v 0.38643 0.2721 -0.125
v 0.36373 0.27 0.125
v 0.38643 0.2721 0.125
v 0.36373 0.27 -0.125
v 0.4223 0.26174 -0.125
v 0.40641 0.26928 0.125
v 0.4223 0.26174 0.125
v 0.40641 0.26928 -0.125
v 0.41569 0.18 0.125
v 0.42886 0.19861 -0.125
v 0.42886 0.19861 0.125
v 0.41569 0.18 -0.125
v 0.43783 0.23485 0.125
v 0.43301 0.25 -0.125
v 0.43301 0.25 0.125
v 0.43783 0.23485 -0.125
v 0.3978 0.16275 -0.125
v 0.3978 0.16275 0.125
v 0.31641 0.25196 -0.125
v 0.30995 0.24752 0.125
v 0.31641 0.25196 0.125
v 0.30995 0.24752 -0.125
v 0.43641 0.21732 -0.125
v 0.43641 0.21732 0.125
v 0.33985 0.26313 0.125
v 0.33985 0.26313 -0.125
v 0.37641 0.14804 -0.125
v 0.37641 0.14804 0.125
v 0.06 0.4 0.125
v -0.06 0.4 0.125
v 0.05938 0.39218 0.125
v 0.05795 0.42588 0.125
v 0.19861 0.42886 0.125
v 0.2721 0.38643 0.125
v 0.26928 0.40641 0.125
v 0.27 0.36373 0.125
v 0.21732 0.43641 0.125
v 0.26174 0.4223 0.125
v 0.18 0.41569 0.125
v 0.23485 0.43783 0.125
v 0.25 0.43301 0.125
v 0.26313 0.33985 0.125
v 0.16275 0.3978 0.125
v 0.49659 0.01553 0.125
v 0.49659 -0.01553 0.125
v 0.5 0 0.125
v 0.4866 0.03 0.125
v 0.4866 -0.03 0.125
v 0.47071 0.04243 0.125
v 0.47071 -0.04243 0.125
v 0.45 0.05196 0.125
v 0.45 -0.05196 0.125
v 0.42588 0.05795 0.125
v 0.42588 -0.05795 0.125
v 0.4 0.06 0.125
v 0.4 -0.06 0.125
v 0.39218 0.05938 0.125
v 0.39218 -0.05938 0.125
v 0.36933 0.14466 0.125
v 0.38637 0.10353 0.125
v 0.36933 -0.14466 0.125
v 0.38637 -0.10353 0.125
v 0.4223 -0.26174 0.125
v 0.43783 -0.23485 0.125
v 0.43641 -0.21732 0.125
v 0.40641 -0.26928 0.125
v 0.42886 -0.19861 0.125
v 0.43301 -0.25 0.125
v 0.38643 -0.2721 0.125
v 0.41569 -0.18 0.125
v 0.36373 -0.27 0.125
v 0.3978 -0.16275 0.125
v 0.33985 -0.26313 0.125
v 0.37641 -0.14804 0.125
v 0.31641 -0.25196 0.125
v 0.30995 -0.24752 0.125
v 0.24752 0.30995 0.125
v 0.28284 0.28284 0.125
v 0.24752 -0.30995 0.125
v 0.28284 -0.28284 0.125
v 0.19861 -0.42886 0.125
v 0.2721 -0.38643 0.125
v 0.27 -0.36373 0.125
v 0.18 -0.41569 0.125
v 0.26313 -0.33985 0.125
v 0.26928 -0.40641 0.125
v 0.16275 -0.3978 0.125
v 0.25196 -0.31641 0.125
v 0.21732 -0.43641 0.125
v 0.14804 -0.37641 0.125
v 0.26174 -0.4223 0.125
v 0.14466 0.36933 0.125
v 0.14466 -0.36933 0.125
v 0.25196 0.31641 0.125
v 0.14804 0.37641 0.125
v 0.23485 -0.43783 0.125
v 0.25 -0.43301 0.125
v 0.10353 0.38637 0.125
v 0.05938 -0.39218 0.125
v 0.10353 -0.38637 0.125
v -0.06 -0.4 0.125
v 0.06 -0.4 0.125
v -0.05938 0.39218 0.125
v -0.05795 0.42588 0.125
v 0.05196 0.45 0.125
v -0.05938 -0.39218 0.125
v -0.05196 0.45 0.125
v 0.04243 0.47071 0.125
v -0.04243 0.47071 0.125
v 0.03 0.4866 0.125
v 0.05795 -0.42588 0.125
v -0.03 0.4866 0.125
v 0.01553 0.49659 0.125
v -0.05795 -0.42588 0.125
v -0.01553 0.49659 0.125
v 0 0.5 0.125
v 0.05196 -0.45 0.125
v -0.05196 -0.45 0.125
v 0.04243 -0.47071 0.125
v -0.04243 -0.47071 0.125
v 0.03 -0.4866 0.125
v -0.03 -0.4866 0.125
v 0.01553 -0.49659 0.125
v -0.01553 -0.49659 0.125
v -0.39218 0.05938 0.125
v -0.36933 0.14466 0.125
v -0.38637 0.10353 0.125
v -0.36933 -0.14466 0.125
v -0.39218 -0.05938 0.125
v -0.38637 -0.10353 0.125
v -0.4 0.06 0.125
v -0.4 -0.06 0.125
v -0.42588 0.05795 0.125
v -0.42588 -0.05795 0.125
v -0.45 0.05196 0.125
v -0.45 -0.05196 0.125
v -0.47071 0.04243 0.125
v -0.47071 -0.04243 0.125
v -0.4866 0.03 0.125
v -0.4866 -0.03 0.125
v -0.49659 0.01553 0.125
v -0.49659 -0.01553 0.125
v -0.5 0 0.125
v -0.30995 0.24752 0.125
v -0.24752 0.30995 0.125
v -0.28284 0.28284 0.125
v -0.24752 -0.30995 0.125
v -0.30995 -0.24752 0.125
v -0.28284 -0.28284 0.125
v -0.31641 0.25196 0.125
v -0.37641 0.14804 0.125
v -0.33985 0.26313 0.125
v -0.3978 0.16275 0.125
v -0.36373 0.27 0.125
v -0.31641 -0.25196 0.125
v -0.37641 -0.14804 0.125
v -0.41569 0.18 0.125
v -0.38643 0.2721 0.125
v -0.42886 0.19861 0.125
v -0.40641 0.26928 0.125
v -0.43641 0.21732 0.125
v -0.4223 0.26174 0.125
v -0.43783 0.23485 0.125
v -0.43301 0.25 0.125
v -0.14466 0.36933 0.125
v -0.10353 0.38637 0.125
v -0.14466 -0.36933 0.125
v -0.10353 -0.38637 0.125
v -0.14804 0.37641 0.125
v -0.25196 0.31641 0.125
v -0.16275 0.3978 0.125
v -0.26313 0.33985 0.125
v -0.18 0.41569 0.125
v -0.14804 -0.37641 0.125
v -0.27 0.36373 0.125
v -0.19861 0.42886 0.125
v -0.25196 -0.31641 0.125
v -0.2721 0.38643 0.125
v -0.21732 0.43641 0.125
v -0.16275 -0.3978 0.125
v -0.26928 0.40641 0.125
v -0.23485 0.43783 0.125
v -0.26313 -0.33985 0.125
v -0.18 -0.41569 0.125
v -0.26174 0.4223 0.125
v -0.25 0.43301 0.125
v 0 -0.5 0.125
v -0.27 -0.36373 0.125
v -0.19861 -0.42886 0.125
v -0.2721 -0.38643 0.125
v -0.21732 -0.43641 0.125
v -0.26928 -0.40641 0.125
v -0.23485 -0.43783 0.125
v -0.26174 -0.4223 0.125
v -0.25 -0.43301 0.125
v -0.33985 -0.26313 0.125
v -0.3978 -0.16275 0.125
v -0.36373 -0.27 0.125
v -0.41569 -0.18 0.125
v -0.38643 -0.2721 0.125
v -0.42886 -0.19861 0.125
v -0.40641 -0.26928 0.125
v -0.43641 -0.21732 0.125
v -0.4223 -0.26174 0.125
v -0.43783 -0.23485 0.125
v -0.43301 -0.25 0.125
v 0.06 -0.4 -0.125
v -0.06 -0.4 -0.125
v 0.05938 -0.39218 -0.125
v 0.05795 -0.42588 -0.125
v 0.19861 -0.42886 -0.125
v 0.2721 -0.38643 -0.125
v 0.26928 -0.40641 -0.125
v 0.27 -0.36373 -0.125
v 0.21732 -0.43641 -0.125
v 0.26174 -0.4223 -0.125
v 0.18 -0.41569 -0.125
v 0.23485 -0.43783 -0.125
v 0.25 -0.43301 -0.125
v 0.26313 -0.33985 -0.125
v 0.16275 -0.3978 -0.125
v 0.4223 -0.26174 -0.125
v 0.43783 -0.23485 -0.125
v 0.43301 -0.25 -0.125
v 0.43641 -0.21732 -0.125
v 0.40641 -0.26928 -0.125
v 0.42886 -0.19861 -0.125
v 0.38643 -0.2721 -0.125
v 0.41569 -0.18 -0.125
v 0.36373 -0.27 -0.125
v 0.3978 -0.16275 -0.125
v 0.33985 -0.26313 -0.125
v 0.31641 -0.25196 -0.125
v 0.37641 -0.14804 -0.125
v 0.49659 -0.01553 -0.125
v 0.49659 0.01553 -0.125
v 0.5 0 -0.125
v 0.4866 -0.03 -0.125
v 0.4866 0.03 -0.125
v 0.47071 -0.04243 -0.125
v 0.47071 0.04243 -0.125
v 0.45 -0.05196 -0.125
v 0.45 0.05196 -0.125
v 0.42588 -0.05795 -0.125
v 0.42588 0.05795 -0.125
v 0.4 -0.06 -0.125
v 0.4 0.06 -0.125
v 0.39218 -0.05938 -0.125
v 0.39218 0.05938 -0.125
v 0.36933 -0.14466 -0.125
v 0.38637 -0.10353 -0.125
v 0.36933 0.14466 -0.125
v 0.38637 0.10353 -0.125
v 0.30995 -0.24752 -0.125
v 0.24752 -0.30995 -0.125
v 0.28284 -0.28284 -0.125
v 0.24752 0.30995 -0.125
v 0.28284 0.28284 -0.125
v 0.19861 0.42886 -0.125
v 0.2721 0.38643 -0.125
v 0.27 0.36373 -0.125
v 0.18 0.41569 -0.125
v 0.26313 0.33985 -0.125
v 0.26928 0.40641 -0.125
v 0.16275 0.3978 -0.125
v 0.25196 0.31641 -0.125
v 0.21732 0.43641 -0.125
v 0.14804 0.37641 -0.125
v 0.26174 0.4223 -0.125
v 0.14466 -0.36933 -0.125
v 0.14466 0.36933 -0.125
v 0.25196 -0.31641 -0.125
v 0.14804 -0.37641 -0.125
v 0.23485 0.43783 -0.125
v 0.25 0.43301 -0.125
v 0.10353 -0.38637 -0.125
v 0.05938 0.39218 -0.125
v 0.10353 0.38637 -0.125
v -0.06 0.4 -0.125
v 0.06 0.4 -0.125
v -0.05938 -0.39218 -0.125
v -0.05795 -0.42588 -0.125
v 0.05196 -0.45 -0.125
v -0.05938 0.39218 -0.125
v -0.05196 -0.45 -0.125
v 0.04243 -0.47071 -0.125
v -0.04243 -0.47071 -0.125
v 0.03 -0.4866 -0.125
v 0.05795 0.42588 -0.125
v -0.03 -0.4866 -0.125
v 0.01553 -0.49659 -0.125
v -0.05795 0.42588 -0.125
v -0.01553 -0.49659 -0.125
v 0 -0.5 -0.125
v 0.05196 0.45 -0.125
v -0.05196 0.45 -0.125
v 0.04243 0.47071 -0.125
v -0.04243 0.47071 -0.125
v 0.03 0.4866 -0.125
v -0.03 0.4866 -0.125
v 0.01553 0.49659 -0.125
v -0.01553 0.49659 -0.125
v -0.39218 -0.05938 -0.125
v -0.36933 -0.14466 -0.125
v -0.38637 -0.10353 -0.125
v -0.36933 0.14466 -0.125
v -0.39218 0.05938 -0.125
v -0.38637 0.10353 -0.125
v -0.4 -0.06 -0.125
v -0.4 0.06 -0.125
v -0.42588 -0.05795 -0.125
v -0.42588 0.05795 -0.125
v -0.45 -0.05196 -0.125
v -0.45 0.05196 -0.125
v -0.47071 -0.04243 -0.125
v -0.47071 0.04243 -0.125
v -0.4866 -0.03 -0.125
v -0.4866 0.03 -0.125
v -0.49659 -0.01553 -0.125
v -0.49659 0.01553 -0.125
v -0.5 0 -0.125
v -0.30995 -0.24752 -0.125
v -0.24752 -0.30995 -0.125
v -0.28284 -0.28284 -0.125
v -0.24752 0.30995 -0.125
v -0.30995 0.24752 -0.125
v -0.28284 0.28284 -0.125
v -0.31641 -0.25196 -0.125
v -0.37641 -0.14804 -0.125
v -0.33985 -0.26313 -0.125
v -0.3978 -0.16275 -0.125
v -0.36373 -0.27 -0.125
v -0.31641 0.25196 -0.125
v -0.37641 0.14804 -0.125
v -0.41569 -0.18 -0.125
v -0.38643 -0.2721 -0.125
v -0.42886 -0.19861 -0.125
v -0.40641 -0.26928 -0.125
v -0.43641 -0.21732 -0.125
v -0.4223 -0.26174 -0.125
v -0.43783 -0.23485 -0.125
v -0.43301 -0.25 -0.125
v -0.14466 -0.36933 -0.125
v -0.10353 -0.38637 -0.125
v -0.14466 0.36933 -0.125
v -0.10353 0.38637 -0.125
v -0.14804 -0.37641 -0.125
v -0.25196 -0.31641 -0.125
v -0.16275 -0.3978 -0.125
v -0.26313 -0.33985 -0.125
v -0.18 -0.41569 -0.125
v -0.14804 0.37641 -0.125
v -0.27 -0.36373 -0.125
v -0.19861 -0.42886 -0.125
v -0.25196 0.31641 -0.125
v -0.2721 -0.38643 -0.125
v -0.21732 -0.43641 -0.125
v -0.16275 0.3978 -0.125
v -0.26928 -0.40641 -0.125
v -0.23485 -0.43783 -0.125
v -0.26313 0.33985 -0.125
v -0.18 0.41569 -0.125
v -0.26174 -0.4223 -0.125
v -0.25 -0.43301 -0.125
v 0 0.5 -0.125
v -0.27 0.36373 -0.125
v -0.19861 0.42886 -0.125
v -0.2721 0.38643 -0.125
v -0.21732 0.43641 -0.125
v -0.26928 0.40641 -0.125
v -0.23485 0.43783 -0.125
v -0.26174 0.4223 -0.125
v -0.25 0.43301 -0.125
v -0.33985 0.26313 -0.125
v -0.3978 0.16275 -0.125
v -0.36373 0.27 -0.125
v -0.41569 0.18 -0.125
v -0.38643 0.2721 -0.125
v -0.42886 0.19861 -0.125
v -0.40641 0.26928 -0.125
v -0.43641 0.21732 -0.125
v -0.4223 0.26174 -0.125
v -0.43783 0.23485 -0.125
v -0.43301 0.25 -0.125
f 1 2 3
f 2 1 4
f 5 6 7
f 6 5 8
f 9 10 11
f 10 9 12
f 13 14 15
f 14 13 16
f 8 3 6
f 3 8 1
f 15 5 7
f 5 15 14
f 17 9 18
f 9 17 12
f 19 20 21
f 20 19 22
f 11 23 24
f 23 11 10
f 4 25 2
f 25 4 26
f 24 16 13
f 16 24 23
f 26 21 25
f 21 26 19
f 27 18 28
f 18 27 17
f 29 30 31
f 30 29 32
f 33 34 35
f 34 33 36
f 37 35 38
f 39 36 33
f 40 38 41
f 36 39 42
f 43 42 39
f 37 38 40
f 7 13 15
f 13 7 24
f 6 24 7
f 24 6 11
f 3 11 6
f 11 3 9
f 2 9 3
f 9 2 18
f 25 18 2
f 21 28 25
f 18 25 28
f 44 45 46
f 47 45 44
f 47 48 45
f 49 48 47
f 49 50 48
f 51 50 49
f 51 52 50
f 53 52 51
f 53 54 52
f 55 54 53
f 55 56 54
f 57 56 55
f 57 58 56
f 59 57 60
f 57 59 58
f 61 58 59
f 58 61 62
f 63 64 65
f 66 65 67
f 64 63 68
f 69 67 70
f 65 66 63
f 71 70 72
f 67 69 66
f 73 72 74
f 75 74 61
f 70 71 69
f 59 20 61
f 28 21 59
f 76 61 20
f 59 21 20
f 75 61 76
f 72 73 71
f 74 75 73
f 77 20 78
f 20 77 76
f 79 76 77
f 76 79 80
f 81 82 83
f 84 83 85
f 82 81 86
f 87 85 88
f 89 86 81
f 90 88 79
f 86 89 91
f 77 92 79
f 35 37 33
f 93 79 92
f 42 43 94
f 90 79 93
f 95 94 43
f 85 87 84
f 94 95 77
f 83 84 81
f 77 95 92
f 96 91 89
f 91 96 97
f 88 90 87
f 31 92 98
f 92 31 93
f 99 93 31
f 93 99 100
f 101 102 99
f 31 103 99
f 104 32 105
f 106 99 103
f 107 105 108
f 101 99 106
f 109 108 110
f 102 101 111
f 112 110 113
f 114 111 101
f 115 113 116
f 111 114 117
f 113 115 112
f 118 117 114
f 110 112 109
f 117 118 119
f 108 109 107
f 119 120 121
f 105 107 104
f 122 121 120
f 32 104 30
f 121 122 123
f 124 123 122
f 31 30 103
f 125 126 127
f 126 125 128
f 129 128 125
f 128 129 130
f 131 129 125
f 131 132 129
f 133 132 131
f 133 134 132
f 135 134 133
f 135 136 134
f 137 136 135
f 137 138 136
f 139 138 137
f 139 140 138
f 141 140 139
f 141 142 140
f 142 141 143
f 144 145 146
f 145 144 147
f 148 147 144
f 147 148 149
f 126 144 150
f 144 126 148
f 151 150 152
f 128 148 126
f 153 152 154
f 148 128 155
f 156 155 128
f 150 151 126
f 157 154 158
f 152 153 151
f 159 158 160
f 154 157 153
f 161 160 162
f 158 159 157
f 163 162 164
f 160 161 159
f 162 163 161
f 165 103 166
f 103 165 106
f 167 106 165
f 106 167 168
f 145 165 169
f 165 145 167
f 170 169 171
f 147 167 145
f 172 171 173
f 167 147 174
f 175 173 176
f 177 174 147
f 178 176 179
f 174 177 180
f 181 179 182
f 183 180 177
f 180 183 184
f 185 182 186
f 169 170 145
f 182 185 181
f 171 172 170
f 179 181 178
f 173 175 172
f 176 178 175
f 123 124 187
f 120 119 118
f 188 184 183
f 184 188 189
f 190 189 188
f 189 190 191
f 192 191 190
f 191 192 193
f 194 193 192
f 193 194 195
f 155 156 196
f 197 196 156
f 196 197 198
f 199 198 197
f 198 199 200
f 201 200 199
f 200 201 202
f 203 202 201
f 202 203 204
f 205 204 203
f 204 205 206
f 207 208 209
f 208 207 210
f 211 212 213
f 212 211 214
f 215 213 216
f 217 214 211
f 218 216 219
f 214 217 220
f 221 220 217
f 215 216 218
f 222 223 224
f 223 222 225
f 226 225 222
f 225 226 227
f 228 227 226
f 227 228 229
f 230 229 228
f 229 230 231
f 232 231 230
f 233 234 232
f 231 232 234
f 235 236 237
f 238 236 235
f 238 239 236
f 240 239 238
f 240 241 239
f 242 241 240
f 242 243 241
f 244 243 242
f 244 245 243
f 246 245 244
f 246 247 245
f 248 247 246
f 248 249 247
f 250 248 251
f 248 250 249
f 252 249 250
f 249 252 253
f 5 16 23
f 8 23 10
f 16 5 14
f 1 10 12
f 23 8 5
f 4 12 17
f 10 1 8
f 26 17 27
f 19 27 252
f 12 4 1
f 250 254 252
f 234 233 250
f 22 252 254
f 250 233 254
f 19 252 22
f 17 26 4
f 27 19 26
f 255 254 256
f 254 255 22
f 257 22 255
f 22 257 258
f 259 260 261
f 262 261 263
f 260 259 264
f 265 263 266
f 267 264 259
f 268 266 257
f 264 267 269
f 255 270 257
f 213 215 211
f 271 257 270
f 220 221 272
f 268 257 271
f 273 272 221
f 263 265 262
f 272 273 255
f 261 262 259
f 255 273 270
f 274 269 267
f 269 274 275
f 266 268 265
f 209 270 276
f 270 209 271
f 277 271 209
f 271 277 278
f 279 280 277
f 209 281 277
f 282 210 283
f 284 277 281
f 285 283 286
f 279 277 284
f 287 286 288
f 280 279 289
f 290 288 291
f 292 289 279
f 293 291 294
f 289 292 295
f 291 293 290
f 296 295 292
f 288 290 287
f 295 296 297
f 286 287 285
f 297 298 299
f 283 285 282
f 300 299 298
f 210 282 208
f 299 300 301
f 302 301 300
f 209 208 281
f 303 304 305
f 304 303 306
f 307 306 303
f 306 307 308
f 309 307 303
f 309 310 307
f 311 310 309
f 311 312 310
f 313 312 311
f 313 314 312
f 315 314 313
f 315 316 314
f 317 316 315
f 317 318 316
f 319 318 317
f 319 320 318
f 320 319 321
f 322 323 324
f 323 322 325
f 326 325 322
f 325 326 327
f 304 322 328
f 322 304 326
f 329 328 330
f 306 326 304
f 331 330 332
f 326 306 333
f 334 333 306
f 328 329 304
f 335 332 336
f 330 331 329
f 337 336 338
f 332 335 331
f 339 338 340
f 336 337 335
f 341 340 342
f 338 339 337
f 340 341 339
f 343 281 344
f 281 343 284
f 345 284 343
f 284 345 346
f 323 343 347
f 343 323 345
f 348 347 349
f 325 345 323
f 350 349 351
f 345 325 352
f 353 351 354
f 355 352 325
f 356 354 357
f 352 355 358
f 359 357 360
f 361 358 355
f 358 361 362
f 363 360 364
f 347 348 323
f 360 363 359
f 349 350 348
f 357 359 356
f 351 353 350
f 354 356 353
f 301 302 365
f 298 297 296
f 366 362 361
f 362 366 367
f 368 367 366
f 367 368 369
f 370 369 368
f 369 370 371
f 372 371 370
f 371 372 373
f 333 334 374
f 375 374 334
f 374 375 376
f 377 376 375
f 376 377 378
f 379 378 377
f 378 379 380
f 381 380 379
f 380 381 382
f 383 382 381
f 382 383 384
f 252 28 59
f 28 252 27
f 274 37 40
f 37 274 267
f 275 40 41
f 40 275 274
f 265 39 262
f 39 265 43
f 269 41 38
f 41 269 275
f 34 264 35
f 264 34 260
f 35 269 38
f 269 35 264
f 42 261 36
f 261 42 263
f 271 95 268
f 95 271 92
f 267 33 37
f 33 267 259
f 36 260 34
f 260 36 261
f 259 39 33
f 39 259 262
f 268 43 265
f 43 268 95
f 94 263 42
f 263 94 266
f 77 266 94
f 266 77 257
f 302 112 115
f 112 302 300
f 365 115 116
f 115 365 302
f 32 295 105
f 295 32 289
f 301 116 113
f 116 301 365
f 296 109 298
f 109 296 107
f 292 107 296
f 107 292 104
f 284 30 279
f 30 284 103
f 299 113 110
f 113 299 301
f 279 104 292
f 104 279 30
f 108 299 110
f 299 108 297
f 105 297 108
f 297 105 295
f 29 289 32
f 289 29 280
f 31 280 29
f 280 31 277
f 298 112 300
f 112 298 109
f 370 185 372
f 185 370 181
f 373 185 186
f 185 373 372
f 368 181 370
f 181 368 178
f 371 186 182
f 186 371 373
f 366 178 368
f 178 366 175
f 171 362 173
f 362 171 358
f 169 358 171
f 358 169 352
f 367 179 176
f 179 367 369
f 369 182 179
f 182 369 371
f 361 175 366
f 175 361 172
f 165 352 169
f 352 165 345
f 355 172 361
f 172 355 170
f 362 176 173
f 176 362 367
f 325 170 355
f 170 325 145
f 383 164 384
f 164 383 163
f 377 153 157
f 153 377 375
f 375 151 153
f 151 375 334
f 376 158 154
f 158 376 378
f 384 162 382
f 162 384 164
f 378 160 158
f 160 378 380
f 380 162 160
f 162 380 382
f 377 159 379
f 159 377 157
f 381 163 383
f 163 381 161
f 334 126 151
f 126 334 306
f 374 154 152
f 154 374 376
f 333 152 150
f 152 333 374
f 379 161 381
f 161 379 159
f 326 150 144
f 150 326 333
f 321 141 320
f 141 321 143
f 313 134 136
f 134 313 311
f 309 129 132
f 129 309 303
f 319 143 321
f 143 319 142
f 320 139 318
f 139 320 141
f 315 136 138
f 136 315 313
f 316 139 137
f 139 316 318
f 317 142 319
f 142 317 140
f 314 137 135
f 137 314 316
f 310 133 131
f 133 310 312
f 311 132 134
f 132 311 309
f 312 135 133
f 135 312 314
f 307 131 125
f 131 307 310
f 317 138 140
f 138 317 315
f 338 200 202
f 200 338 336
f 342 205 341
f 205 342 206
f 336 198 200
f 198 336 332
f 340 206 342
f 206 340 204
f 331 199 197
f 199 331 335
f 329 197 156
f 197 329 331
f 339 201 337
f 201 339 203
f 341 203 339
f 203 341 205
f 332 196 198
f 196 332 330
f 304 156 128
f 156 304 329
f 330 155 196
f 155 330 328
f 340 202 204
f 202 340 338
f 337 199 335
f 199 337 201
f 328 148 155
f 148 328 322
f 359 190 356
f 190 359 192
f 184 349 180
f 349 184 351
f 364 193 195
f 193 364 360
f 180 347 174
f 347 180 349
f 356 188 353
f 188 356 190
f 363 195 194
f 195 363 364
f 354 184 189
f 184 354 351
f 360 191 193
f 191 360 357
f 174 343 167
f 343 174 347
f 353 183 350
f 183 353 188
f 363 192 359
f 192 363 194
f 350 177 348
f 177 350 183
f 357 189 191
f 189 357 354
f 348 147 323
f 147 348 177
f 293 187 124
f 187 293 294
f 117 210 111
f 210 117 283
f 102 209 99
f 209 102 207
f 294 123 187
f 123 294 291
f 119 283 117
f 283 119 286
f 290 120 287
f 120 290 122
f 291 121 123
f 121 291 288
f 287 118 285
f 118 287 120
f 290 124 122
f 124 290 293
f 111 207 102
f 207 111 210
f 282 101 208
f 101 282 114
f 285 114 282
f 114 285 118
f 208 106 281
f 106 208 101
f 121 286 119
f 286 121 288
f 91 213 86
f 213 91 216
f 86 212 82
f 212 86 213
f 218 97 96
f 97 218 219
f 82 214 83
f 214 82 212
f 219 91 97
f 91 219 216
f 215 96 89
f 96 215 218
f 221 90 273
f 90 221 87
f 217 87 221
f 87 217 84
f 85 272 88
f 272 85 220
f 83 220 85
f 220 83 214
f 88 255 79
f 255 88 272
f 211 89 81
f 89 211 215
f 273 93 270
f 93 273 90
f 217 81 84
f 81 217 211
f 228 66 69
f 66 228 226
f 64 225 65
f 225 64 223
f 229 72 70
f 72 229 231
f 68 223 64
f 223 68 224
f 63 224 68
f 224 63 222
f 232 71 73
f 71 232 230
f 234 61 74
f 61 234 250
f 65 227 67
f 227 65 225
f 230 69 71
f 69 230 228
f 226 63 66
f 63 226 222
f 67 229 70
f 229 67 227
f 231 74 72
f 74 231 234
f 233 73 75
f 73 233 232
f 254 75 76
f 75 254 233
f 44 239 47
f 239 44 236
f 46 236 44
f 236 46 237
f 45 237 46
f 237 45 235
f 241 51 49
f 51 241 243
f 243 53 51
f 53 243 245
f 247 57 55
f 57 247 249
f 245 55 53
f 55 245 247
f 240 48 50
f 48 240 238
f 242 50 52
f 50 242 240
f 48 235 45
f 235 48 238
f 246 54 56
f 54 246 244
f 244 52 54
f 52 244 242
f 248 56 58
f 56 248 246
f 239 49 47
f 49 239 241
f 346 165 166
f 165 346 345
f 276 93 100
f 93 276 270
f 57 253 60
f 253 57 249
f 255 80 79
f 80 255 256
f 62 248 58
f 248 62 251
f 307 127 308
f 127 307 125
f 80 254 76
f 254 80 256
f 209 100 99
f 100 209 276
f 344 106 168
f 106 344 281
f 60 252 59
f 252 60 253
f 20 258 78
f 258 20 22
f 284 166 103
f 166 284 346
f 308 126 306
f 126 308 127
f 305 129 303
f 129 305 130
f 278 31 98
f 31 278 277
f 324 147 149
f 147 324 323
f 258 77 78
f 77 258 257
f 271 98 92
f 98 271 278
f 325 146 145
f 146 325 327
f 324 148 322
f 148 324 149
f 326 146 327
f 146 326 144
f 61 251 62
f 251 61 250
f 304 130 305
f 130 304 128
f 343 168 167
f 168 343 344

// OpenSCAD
// file: lib.scad
function x(v) = v[0];
function y(v) = v[1];
function z(v) = v[2];
function add(v1,v2) = [ for (i = [ 0 : len(v1)-1 ]) v1[i] + v2[i] ];
function xv(d) = [d,0,0];
function yv(d) = [0,d,0];
function zv(d) = [0,0,d];

module box(v) { cube(size=v, center=true); }
module cyl(r1,r2,h) { cylinder(r1=r1, r2=r2, h=h, center=true); }

function grow(n,v) = [x(v)+n*2, y(v)+n*2, z(v)+n*2];

module rbox(v, radius=1) {
	cx = x(v)/2-radius;
	cy = y(v)/2-radius;
	cz = z(v)/2-radius;

	hull() {
		translate([cx,cy,cz]) sphere(r=radius);
		translate([cx,cy,-cz]) sphere(r=radius);
		translate([cx,-cy,cz]) sphere(r=radius);
		translate([cx,-cy,-cz]) sphere(r=radius);
		translate([-cx,cy,cz]) sphere(r=radius);
		translate([-cx,cy,-cz]) sphere(r=radius);
		translate([-cx,-cy,cz]) sphere(r=radius);
		translate([-cx,-cy,-cz]) sphere(r=radius);
	}
}

module fillet(r=1) {
  minkowski() {
    difference() {
      children();
      minkowski() {
        difference() {
          minkowski() {
            children();
            sphere(r=r);
          }
          children();
        }
        sphere(r=r);
      }
    }
    sphere(r=r);
  }
}
// main file
use <lib.scad>

union() {
	cyl(0.4, 0.4, 0.25, $fn=24);
	for (i = [1:12])
		rotate([0,0,i*360/12]) translate([0.4,0,0]) scale([1,0.6,1]) cyl(0.1, 0.1, 0.25, $fn=24);
}
